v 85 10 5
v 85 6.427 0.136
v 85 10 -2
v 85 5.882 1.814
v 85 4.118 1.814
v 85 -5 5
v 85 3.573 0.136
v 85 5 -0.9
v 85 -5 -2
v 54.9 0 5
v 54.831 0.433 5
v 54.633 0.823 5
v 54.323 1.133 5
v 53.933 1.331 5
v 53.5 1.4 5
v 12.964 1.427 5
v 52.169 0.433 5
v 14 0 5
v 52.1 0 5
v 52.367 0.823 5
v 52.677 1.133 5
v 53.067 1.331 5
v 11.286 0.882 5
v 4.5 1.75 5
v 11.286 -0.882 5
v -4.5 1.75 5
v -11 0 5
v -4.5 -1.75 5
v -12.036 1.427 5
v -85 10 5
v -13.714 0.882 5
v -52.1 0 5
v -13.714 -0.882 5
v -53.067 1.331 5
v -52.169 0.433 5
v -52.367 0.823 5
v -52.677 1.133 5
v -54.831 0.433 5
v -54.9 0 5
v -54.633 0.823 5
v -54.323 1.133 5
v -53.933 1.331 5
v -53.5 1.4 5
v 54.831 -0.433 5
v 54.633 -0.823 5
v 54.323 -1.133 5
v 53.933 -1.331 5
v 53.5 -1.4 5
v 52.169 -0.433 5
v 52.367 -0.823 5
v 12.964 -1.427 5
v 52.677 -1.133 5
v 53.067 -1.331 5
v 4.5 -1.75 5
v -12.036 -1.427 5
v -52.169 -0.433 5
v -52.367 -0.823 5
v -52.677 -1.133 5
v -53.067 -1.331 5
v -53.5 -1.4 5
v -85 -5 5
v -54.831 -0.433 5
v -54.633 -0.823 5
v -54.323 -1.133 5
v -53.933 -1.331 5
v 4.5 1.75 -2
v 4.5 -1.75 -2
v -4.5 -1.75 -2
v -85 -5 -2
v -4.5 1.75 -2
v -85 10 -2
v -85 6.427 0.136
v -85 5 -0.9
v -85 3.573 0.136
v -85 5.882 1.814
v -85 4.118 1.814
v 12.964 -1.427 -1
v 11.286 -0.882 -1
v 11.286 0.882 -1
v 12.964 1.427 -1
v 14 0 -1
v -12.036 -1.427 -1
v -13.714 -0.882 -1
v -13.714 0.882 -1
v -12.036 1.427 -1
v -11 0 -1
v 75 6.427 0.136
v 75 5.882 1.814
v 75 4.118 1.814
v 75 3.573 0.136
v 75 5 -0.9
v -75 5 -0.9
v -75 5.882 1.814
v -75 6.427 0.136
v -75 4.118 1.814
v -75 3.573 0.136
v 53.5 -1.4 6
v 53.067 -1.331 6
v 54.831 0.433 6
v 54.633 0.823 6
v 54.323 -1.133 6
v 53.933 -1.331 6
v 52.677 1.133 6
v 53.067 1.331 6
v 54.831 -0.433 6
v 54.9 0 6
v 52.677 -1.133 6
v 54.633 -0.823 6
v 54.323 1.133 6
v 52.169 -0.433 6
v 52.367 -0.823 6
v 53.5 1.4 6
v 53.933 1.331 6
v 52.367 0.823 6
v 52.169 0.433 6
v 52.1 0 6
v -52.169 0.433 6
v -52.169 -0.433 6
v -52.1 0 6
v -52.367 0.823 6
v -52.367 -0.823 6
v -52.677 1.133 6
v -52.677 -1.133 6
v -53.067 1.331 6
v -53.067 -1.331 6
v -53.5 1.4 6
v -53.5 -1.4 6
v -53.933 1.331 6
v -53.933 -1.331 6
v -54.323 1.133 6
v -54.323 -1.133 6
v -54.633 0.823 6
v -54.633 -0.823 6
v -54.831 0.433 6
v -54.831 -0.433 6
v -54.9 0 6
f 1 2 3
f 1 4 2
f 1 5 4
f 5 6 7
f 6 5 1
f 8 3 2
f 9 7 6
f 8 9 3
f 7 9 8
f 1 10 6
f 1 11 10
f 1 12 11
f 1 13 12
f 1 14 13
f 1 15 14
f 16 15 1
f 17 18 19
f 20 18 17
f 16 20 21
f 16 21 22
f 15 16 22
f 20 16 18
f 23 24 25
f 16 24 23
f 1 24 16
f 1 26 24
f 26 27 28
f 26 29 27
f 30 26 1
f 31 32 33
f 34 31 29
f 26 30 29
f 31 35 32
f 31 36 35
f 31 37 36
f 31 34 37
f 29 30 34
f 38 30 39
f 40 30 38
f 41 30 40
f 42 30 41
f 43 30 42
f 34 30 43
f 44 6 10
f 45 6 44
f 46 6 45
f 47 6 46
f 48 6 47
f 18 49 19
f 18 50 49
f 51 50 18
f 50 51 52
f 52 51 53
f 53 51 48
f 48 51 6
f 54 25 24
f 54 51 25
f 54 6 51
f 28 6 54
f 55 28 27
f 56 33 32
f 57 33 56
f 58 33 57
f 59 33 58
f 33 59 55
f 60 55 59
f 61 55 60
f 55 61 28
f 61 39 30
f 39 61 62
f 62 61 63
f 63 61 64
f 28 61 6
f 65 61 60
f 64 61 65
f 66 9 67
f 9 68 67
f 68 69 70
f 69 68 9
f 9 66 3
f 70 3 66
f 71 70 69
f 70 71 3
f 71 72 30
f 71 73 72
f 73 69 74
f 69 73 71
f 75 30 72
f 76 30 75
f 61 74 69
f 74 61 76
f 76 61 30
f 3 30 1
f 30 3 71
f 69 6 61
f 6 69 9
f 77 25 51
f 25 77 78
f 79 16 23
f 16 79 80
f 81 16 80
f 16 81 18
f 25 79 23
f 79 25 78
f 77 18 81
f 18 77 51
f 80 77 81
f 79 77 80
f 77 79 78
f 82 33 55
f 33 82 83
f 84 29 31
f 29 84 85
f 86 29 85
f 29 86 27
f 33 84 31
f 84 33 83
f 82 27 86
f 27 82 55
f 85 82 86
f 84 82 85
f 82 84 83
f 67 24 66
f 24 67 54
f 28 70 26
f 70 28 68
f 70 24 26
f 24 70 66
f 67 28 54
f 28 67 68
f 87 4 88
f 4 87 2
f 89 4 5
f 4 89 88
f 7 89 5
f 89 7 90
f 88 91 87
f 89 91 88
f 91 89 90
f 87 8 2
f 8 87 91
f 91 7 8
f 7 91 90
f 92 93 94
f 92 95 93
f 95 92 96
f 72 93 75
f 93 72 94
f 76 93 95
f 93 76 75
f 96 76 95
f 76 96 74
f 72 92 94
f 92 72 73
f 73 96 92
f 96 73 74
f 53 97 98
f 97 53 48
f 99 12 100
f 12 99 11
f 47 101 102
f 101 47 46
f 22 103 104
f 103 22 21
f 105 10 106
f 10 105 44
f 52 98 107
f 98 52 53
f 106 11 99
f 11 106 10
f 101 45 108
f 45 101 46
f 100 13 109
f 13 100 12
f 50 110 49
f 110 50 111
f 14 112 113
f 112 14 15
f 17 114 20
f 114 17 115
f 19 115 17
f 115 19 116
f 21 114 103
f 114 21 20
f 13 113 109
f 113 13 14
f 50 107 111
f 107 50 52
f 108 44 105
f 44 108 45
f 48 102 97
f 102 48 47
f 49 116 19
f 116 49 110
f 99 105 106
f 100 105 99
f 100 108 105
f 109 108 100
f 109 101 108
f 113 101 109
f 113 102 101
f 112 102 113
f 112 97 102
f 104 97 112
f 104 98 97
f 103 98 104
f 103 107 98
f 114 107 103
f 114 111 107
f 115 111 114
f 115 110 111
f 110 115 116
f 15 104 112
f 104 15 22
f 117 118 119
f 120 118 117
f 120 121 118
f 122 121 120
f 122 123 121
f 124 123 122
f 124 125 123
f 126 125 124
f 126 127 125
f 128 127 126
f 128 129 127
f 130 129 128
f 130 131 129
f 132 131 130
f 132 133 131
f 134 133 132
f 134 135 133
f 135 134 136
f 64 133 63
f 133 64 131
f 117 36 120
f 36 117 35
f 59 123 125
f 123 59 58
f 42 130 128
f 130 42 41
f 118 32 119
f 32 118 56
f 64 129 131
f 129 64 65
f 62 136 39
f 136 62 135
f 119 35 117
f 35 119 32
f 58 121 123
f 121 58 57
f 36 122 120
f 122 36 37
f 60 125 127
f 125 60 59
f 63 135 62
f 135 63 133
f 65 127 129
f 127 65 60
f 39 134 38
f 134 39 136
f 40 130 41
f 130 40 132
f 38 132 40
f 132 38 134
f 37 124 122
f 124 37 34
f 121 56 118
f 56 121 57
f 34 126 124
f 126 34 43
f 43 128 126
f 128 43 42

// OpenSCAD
bar();

module bar(){
    translate([0,0,0])
union(){
    difference() {
        translate([0,2.5,1.5]) cube ([170, 15, 7], center=true);
        #translate([12.5, 0, 4]) cylinder(10, 1.5, 1.5, center=true);
        #translate([-12.5, 0, 4]) cylinder(10, 1.5, 1.5, center=true);
        
        // usb hole
        # cube([9,3.5,10+1], center=true);
        
        // sideholes
        translate([170/2,5,0.6]) rotate([0,90,0]) cylinder(20, 1.5, 1.5, center=true);
        translate([-170/2,5,0.6]) rotate([0,90,0]) cylinder(20, 1.5, 1.5, center=true);
    }
    translate([53.5, 0, 2]) cylinder(8, 1.4, 1.4, center=true, $fn=20);
    translate([-53.5, 0, 2]) cylinder(8, 1.4, 1.4, center=true, $fn=20);
}
}
